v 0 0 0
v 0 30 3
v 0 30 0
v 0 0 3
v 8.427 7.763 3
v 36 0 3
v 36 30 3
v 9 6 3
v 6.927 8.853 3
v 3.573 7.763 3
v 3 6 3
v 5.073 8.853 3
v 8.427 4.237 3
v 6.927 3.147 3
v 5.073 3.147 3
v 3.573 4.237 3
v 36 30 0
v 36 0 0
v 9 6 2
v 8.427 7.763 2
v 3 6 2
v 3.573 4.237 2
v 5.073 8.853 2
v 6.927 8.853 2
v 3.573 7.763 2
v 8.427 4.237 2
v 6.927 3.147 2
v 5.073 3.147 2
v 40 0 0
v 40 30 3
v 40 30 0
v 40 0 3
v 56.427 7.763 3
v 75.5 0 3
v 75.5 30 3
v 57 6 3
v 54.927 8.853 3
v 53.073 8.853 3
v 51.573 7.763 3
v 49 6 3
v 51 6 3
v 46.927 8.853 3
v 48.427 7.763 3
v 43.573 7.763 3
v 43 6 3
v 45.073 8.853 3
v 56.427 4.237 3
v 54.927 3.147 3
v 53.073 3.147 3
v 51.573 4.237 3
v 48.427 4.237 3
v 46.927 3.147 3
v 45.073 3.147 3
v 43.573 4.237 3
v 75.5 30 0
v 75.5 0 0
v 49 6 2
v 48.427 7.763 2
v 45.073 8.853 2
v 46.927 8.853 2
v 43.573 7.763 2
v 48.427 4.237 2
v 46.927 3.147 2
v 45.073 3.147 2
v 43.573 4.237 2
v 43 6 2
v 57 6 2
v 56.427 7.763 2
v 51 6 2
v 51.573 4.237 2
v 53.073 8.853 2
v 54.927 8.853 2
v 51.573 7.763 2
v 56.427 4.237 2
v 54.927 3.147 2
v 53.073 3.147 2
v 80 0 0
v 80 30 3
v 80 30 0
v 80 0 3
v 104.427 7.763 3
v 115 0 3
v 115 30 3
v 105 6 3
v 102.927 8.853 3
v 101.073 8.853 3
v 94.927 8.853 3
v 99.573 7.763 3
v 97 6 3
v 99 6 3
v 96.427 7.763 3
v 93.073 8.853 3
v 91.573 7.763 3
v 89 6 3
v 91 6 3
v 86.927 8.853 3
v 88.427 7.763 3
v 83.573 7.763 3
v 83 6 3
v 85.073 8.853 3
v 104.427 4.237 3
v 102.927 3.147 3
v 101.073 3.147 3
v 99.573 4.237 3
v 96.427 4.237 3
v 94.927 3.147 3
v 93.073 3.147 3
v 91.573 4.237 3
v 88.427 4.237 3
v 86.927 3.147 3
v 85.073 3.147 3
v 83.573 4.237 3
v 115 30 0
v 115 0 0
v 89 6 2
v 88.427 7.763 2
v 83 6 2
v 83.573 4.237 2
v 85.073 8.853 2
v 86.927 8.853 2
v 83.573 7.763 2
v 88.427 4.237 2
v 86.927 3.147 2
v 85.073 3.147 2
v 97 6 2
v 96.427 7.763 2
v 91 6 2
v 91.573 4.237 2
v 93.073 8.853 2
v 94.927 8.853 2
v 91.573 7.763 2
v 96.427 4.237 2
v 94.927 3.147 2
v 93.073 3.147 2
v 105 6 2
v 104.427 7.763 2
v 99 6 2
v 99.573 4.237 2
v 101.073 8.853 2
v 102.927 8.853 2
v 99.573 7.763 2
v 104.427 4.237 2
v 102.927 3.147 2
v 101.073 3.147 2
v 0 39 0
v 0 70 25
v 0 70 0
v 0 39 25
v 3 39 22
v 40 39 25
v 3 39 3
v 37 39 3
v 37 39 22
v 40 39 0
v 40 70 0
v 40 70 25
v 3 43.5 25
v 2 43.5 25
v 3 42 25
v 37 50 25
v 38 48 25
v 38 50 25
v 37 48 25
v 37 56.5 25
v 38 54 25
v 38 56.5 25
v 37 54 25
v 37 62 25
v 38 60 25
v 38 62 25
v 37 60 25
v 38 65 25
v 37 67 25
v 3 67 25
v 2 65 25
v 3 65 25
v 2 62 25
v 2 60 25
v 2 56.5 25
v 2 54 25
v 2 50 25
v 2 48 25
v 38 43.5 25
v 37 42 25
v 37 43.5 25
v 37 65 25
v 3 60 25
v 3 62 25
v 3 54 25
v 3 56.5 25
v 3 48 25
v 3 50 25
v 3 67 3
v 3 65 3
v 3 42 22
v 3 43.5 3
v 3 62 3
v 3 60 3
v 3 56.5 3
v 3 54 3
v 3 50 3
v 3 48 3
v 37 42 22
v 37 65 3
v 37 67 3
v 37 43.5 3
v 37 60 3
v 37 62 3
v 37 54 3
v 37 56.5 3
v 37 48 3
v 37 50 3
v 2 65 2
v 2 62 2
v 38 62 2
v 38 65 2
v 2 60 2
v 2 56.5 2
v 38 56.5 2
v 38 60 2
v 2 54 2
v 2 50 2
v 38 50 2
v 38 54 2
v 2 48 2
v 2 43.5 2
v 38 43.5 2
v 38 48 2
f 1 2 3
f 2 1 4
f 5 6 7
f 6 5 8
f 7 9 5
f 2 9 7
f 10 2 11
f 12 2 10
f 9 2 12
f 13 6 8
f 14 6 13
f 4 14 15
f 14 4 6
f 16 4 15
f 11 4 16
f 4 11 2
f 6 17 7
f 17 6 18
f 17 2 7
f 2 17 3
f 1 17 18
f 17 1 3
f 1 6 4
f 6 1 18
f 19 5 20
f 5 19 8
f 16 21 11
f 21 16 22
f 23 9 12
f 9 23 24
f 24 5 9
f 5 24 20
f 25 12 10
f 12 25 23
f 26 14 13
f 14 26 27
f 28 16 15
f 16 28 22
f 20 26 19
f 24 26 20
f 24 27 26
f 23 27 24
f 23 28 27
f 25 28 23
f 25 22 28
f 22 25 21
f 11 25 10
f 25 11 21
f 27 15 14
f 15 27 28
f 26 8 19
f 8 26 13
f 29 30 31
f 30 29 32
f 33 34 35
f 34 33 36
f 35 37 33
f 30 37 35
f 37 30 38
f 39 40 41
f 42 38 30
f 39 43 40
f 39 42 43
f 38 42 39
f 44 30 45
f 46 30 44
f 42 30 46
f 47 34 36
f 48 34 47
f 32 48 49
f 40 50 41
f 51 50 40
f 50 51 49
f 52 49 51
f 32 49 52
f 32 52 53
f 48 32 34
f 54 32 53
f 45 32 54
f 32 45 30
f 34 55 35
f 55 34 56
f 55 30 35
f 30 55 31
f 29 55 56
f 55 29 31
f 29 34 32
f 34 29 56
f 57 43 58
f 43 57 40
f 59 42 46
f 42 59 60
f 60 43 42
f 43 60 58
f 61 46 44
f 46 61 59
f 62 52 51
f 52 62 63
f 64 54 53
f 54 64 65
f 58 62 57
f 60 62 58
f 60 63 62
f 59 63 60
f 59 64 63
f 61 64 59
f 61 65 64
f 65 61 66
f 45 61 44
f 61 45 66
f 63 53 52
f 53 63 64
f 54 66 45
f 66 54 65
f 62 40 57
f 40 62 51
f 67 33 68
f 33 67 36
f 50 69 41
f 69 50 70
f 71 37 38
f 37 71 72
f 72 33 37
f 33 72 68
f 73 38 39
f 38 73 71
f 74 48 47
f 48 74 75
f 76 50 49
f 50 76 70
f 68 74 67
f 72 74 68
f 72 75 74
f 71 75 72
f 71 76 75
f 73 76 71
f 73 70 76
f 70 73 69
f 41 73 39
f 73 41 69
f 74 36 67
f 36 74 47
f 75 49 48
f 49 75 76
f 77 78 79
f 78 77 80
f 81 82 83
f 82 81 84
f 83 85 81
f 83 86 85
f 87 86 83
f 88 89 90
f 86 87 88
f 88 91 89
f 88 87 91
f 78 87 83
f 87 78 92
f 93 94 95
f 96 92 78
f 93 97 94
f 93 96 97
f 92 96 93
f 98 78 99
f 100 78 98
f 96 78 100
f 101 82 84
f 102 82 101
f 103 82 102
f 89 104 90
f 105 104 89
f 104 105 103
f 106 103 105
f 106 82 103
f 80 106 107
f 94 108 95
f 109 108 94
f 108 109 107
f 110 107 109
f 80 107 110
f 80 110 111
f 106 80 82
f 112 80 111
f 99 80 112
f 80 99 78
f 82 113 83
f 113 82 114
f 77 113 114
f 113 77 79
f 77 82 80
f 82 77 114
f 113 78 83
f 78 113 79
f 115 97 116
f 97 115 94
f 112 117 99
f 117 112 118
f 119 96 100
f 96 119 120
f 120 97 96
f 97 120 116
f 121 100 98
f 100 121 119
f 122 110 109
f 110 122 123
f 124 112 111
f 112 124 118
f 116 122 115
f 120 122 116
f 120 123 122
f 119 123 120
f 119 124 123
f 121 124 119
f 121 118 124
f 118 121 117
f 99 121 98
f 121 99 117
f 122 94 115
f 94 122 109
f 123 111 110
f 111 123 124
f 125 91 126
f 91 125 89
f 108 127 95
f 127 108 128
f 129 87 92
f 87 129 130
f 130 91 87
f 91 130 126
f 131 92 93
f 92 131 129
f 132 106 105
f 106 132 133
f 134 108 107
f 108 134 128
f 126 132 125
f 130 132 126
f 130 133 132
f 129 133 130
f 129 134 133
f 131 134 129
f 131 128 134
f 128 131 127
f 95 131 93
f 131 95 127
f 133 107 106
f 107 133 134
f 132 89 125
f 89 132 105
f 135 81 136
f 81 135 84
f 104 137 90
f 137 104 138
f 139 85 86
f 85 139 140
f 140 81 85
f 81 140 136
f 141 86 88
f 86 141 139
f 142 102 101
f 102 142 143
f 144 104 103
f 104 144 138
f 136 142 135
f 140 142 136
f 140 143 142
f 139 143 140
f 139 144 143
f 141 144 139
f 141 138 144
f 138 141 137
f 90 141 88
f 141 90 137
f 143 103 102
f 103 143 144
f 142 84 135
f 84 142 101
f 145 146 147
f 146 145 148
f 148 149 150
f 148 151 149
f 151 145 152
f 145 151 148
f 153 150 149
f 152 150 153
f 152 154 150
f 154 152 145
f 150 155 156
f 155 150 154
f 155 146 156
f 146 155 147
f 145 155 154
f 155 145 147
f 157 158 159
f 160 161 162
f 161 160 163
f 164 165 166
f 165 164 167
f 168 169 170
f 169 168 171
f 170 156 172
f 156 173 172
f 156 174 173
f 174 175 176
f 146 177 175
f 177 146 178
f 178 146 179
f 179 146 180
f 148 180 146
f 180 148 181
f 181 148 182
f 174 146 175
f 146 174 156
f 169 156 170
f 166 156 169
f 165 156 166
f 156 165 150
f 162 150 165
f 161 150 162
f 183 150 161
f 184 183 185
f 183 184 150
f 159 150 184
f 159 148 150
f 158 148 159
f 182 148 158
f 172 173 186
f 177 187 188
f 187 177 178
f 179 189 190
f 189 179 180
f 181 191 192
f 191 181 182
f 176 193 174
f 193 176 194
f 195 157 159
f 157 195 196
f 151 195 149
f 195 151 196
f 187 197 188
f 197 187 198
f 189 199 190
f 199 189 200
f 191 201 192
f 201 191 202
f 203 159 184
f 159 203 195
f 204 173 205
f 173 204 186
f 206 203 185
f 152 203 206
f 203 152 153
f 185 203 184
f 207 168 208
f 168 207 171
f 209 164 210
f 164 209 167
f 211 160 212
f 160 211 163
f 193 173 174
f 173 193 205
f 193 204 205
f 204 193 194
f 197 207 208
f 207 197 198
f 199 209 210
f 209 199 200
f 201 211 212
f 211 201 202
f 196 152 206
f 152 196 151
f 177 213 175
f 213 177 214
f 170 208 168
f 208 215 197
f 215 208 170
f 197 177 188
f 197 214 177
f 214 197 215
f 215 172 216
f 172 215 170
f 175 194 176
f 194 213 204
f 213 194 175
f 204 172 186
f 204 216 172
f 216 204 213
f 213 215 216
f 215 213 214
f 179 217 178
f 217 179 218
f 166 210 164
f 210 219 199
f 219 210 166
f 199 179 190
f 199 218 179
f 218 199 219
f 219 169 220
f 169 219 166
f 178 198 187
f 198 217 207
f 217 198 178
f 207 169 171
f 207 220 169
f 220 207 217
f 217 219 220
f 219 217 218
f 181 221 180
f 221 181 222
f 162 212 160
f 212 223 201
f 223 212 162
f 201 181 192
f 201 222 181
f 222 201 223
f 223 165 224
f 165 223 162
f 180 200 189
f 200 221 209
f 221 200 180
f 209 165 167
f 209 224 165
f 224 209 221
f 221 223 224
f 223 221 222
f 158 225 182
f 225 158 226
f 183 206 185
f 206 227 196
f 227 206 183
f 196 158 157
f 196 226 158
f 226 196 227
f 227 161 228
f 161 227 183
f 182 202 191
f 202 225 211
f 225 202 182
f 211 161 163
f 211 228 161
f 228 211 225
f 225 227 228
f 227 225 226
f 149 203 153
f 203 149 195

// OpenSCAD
// -----------------------------------------------------------------------------
// Groove test

translate([0, 0, 0])
    difference() {
        cube([36, 30, 3]);
        
        translate([6, 6, 2])
            cylinder(4, 3, 3);
    }

translate([40, 0, 0])
    difference() {
        cube([35.5, 30, 3]);
        
        translate([6, 6, 2])
            cylinder(4, 3, 3);

        translate([14, 6, 2])
            cylinder(4, 3, 3);
    }

translate([80, 0, 0])
    difference() {
        cube([35, 30, 3]);
        
        translate([6, 6, 2])
            cylinder(4, 3, 3);

        translate([14, 6, 2])
            cylinder(4, 3, 3);

        translate([22, 6, 2])
            cylinder(4, 3, 3);
    }

// Groove casing
translate([0, 70, 0])
rotate([90, 0, 0])
    difference() {
        cube([40, 25, 31]);

        // Groove
        translate([3, 3, 3])
            cube([34, 26, 25]);
      
        // Inside groove (3mm)
        translate([2, 2, 5])
            cube([36, 26, 3]);

        // Inside groove (3mm)
        translate([2, 2, 10])
            cube([36, 26, 3.5]);

        // Inside groove (4mm)
        translate([2, 2, 16])
            cube([36, 26, 4]);

        // Inside groove (4mm)
        translate([2, 2, 22])
            cube([36, 26, 4.5]);
       
        // View hole
        translate([3, 3, 3])
            cube([34, 19, 30]);
    }
